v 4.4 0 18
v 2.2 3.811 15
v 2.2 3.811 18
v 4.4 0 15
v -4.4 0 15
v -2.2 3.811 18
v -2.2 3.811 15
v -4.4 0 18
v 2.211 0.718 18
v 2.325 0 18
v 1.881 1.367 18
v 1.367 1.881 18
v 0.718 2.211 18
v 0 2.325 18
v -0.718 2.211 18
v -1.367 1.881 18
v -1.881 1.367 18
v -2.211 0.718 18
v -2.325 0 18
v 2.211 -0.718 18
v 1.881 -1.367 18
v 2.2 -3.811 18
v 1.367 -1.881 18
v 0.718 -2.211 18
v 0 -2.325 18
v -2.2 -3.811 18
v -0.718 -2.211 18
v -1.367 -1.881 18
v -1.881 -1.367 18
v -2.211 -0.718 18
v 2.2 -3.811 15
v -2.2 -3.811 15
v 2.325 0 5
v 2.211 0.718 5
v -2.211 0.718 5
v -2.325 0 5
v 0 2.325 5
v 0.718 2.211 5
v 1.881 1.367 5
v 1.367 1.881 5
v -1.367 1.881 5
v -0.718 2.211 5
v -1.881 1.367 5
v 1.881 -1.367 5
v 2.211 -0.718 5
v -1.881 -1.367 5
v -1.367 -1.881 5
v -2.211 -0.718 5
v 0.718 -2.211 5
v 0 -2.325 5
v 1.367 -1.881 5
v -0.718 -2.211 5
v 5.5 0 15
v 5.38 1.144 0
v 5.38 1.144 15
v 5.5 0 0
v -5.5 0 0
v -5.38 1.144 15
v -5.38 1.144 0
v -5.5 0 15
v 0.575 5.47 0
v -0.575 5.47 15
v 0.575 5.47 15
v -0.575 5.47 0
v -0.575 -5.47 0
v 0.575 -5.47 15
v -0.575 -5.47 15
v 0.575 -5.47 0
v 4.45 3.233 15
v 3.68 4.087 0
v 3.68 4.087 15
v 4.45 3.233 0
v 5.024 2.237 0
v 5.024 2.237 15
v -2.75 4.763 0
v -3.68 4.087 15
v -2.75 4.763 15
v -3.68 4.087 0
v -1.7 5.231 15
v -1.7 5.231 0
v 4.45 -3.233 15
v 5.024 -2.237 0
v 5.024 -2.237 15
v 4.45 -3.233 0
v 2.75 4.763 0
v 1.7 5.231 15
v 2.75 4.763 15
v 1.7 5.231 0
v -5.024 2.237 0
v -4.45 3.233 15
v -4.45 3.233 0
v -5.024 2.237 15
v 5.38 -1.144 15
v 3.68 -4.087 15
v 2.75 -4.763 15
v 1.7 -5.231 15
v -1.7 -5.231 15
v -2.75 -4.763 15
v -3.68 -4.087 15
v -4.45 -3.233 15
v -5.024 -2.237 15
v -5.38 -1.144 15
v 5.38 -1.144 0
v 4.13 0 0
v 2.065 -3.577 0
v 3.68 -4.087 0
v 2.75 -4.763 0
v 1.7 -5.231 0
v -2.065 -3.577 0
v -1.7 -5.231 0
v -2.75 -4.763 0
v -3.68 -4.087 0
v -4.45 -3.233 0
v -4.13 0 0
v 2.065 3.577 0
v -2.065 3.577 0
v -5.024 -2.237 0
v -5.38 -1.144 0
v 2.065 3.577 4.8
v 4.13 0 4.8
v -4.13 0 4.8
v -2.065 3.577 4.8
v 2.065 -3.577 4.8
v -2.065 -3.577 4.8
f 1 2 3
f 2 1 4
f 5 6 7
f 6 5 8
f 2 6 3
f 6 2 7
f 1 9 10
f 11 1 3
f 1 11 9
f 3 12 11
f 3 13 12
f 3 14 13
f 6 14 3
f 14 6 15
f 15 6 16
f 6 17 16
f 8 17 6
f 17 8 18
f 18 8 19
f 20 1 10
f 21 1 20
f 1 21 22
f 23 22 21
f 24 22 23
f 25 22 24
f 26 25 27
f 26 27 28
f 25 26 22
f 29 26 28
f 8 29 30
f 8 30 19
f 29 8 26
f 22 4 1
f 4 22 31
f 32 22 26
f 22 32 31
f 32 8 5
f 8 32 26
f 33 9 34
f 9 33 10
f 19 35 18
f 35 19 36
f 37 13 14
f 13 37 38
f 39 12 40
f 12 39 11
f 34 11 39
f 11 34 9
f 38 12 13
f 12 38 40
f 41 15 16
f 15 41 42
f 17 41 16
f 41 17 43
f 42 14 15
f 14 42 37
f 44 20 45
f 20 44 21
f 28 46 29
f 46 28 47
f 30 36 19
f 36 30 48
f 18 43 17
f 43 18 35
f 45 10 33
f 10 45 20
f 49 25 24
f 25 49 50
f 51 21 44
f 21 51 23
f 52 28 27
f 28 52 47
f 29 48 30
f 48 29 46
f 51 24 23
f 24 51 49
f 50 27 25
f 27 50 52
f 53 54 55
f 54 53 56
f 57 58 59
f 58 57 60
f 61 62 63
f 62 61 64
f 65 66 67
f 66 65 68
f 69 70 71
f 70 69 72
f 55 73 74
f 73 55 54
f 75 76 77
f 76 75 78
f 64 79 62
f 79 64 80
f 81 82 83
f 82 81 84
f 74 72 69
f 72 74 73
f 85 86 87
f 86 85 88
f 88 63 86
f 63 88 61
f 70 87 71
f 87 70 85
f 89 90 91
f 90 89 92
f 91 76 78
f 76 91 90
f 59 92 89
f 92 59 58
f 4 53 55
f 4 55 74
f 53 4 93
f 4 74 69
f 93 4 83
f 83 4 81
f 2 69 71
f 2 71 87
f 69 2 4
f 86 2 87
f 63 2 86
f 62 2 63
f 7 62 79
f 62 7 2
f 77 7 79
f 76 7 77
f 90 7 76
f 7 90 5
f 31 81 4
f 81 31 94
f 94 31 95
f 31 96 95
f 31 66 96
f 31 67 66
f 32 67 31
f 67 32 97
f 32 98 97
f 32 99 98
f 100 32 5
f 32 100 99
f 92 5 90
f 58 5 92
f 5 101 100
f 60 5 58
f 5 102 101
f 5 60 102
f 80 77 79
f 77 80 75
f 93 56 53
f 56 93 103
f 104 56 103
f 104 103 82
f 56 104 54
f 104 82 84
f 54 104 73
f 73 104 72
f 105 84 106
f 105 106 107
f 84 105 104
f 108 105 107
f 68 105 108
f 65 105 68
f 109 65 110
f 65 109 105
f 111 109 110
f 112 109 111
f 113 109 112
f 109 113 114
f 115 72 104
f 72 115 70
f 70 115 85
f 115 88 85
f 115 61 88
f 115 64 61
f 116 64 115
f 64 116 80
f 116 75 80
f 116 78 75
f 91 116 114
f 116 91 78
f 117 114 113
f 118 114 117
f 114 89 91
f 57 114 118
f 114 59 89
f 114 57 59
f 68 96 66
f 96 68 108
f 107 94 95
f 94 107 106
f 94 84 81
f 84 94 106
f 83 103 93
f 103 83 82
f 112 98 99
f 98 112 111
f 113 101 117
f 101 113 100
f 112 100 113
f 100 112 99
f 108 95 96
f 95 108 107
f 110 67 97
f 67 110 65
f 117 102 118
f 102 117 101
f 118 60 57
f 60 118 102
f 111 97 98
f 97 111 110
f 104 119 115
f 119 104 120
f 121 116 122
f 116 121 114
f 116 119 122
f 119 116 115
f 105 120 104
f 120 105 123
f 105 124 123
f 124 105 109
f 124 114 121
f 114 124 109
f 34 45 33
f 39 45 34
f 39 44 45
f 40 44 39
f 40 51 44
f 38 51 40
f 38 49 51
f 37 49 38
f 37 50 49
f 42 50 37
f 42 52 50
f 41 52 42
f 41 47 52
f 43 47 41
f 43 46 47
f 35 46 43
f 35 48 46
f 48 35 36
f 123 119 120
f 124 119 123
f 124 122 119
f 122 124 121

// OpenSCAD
echo((4.7-0.3)*2);

mod = 1; // relocate location of end of nut socket


difference() {
    translate([0, 0, 0]) cylinder(h=15, r=5.5, $fn=30);
    translate([0, 0, -1])  cylinder(h=15+2, d=4.65, $fn=20);
    translate([0, 0, -0.01]) cylinder(h=4+mod, r=3.83+0.3, $fn=6);  // nut socket
}

translate([0, 0, 3.8+mod]) cylinder(h=0.2, r=4.2+0.3, $fn=6);  //sacrificial support
//rotate([0, 0, 90]) translate([0, 2.95, 3.5+1*0.2]) cube([5.8, 1.2, 0.4], center=true);

difference() {     // nut end
    translate([0, 0, 10]) cylinder(h=8, d=(4.7-0.3)*2, $fn=6);
    translate([0, 0, 9])  cylinder(h=10+2, d=4.65, $fn=20);
    
}
